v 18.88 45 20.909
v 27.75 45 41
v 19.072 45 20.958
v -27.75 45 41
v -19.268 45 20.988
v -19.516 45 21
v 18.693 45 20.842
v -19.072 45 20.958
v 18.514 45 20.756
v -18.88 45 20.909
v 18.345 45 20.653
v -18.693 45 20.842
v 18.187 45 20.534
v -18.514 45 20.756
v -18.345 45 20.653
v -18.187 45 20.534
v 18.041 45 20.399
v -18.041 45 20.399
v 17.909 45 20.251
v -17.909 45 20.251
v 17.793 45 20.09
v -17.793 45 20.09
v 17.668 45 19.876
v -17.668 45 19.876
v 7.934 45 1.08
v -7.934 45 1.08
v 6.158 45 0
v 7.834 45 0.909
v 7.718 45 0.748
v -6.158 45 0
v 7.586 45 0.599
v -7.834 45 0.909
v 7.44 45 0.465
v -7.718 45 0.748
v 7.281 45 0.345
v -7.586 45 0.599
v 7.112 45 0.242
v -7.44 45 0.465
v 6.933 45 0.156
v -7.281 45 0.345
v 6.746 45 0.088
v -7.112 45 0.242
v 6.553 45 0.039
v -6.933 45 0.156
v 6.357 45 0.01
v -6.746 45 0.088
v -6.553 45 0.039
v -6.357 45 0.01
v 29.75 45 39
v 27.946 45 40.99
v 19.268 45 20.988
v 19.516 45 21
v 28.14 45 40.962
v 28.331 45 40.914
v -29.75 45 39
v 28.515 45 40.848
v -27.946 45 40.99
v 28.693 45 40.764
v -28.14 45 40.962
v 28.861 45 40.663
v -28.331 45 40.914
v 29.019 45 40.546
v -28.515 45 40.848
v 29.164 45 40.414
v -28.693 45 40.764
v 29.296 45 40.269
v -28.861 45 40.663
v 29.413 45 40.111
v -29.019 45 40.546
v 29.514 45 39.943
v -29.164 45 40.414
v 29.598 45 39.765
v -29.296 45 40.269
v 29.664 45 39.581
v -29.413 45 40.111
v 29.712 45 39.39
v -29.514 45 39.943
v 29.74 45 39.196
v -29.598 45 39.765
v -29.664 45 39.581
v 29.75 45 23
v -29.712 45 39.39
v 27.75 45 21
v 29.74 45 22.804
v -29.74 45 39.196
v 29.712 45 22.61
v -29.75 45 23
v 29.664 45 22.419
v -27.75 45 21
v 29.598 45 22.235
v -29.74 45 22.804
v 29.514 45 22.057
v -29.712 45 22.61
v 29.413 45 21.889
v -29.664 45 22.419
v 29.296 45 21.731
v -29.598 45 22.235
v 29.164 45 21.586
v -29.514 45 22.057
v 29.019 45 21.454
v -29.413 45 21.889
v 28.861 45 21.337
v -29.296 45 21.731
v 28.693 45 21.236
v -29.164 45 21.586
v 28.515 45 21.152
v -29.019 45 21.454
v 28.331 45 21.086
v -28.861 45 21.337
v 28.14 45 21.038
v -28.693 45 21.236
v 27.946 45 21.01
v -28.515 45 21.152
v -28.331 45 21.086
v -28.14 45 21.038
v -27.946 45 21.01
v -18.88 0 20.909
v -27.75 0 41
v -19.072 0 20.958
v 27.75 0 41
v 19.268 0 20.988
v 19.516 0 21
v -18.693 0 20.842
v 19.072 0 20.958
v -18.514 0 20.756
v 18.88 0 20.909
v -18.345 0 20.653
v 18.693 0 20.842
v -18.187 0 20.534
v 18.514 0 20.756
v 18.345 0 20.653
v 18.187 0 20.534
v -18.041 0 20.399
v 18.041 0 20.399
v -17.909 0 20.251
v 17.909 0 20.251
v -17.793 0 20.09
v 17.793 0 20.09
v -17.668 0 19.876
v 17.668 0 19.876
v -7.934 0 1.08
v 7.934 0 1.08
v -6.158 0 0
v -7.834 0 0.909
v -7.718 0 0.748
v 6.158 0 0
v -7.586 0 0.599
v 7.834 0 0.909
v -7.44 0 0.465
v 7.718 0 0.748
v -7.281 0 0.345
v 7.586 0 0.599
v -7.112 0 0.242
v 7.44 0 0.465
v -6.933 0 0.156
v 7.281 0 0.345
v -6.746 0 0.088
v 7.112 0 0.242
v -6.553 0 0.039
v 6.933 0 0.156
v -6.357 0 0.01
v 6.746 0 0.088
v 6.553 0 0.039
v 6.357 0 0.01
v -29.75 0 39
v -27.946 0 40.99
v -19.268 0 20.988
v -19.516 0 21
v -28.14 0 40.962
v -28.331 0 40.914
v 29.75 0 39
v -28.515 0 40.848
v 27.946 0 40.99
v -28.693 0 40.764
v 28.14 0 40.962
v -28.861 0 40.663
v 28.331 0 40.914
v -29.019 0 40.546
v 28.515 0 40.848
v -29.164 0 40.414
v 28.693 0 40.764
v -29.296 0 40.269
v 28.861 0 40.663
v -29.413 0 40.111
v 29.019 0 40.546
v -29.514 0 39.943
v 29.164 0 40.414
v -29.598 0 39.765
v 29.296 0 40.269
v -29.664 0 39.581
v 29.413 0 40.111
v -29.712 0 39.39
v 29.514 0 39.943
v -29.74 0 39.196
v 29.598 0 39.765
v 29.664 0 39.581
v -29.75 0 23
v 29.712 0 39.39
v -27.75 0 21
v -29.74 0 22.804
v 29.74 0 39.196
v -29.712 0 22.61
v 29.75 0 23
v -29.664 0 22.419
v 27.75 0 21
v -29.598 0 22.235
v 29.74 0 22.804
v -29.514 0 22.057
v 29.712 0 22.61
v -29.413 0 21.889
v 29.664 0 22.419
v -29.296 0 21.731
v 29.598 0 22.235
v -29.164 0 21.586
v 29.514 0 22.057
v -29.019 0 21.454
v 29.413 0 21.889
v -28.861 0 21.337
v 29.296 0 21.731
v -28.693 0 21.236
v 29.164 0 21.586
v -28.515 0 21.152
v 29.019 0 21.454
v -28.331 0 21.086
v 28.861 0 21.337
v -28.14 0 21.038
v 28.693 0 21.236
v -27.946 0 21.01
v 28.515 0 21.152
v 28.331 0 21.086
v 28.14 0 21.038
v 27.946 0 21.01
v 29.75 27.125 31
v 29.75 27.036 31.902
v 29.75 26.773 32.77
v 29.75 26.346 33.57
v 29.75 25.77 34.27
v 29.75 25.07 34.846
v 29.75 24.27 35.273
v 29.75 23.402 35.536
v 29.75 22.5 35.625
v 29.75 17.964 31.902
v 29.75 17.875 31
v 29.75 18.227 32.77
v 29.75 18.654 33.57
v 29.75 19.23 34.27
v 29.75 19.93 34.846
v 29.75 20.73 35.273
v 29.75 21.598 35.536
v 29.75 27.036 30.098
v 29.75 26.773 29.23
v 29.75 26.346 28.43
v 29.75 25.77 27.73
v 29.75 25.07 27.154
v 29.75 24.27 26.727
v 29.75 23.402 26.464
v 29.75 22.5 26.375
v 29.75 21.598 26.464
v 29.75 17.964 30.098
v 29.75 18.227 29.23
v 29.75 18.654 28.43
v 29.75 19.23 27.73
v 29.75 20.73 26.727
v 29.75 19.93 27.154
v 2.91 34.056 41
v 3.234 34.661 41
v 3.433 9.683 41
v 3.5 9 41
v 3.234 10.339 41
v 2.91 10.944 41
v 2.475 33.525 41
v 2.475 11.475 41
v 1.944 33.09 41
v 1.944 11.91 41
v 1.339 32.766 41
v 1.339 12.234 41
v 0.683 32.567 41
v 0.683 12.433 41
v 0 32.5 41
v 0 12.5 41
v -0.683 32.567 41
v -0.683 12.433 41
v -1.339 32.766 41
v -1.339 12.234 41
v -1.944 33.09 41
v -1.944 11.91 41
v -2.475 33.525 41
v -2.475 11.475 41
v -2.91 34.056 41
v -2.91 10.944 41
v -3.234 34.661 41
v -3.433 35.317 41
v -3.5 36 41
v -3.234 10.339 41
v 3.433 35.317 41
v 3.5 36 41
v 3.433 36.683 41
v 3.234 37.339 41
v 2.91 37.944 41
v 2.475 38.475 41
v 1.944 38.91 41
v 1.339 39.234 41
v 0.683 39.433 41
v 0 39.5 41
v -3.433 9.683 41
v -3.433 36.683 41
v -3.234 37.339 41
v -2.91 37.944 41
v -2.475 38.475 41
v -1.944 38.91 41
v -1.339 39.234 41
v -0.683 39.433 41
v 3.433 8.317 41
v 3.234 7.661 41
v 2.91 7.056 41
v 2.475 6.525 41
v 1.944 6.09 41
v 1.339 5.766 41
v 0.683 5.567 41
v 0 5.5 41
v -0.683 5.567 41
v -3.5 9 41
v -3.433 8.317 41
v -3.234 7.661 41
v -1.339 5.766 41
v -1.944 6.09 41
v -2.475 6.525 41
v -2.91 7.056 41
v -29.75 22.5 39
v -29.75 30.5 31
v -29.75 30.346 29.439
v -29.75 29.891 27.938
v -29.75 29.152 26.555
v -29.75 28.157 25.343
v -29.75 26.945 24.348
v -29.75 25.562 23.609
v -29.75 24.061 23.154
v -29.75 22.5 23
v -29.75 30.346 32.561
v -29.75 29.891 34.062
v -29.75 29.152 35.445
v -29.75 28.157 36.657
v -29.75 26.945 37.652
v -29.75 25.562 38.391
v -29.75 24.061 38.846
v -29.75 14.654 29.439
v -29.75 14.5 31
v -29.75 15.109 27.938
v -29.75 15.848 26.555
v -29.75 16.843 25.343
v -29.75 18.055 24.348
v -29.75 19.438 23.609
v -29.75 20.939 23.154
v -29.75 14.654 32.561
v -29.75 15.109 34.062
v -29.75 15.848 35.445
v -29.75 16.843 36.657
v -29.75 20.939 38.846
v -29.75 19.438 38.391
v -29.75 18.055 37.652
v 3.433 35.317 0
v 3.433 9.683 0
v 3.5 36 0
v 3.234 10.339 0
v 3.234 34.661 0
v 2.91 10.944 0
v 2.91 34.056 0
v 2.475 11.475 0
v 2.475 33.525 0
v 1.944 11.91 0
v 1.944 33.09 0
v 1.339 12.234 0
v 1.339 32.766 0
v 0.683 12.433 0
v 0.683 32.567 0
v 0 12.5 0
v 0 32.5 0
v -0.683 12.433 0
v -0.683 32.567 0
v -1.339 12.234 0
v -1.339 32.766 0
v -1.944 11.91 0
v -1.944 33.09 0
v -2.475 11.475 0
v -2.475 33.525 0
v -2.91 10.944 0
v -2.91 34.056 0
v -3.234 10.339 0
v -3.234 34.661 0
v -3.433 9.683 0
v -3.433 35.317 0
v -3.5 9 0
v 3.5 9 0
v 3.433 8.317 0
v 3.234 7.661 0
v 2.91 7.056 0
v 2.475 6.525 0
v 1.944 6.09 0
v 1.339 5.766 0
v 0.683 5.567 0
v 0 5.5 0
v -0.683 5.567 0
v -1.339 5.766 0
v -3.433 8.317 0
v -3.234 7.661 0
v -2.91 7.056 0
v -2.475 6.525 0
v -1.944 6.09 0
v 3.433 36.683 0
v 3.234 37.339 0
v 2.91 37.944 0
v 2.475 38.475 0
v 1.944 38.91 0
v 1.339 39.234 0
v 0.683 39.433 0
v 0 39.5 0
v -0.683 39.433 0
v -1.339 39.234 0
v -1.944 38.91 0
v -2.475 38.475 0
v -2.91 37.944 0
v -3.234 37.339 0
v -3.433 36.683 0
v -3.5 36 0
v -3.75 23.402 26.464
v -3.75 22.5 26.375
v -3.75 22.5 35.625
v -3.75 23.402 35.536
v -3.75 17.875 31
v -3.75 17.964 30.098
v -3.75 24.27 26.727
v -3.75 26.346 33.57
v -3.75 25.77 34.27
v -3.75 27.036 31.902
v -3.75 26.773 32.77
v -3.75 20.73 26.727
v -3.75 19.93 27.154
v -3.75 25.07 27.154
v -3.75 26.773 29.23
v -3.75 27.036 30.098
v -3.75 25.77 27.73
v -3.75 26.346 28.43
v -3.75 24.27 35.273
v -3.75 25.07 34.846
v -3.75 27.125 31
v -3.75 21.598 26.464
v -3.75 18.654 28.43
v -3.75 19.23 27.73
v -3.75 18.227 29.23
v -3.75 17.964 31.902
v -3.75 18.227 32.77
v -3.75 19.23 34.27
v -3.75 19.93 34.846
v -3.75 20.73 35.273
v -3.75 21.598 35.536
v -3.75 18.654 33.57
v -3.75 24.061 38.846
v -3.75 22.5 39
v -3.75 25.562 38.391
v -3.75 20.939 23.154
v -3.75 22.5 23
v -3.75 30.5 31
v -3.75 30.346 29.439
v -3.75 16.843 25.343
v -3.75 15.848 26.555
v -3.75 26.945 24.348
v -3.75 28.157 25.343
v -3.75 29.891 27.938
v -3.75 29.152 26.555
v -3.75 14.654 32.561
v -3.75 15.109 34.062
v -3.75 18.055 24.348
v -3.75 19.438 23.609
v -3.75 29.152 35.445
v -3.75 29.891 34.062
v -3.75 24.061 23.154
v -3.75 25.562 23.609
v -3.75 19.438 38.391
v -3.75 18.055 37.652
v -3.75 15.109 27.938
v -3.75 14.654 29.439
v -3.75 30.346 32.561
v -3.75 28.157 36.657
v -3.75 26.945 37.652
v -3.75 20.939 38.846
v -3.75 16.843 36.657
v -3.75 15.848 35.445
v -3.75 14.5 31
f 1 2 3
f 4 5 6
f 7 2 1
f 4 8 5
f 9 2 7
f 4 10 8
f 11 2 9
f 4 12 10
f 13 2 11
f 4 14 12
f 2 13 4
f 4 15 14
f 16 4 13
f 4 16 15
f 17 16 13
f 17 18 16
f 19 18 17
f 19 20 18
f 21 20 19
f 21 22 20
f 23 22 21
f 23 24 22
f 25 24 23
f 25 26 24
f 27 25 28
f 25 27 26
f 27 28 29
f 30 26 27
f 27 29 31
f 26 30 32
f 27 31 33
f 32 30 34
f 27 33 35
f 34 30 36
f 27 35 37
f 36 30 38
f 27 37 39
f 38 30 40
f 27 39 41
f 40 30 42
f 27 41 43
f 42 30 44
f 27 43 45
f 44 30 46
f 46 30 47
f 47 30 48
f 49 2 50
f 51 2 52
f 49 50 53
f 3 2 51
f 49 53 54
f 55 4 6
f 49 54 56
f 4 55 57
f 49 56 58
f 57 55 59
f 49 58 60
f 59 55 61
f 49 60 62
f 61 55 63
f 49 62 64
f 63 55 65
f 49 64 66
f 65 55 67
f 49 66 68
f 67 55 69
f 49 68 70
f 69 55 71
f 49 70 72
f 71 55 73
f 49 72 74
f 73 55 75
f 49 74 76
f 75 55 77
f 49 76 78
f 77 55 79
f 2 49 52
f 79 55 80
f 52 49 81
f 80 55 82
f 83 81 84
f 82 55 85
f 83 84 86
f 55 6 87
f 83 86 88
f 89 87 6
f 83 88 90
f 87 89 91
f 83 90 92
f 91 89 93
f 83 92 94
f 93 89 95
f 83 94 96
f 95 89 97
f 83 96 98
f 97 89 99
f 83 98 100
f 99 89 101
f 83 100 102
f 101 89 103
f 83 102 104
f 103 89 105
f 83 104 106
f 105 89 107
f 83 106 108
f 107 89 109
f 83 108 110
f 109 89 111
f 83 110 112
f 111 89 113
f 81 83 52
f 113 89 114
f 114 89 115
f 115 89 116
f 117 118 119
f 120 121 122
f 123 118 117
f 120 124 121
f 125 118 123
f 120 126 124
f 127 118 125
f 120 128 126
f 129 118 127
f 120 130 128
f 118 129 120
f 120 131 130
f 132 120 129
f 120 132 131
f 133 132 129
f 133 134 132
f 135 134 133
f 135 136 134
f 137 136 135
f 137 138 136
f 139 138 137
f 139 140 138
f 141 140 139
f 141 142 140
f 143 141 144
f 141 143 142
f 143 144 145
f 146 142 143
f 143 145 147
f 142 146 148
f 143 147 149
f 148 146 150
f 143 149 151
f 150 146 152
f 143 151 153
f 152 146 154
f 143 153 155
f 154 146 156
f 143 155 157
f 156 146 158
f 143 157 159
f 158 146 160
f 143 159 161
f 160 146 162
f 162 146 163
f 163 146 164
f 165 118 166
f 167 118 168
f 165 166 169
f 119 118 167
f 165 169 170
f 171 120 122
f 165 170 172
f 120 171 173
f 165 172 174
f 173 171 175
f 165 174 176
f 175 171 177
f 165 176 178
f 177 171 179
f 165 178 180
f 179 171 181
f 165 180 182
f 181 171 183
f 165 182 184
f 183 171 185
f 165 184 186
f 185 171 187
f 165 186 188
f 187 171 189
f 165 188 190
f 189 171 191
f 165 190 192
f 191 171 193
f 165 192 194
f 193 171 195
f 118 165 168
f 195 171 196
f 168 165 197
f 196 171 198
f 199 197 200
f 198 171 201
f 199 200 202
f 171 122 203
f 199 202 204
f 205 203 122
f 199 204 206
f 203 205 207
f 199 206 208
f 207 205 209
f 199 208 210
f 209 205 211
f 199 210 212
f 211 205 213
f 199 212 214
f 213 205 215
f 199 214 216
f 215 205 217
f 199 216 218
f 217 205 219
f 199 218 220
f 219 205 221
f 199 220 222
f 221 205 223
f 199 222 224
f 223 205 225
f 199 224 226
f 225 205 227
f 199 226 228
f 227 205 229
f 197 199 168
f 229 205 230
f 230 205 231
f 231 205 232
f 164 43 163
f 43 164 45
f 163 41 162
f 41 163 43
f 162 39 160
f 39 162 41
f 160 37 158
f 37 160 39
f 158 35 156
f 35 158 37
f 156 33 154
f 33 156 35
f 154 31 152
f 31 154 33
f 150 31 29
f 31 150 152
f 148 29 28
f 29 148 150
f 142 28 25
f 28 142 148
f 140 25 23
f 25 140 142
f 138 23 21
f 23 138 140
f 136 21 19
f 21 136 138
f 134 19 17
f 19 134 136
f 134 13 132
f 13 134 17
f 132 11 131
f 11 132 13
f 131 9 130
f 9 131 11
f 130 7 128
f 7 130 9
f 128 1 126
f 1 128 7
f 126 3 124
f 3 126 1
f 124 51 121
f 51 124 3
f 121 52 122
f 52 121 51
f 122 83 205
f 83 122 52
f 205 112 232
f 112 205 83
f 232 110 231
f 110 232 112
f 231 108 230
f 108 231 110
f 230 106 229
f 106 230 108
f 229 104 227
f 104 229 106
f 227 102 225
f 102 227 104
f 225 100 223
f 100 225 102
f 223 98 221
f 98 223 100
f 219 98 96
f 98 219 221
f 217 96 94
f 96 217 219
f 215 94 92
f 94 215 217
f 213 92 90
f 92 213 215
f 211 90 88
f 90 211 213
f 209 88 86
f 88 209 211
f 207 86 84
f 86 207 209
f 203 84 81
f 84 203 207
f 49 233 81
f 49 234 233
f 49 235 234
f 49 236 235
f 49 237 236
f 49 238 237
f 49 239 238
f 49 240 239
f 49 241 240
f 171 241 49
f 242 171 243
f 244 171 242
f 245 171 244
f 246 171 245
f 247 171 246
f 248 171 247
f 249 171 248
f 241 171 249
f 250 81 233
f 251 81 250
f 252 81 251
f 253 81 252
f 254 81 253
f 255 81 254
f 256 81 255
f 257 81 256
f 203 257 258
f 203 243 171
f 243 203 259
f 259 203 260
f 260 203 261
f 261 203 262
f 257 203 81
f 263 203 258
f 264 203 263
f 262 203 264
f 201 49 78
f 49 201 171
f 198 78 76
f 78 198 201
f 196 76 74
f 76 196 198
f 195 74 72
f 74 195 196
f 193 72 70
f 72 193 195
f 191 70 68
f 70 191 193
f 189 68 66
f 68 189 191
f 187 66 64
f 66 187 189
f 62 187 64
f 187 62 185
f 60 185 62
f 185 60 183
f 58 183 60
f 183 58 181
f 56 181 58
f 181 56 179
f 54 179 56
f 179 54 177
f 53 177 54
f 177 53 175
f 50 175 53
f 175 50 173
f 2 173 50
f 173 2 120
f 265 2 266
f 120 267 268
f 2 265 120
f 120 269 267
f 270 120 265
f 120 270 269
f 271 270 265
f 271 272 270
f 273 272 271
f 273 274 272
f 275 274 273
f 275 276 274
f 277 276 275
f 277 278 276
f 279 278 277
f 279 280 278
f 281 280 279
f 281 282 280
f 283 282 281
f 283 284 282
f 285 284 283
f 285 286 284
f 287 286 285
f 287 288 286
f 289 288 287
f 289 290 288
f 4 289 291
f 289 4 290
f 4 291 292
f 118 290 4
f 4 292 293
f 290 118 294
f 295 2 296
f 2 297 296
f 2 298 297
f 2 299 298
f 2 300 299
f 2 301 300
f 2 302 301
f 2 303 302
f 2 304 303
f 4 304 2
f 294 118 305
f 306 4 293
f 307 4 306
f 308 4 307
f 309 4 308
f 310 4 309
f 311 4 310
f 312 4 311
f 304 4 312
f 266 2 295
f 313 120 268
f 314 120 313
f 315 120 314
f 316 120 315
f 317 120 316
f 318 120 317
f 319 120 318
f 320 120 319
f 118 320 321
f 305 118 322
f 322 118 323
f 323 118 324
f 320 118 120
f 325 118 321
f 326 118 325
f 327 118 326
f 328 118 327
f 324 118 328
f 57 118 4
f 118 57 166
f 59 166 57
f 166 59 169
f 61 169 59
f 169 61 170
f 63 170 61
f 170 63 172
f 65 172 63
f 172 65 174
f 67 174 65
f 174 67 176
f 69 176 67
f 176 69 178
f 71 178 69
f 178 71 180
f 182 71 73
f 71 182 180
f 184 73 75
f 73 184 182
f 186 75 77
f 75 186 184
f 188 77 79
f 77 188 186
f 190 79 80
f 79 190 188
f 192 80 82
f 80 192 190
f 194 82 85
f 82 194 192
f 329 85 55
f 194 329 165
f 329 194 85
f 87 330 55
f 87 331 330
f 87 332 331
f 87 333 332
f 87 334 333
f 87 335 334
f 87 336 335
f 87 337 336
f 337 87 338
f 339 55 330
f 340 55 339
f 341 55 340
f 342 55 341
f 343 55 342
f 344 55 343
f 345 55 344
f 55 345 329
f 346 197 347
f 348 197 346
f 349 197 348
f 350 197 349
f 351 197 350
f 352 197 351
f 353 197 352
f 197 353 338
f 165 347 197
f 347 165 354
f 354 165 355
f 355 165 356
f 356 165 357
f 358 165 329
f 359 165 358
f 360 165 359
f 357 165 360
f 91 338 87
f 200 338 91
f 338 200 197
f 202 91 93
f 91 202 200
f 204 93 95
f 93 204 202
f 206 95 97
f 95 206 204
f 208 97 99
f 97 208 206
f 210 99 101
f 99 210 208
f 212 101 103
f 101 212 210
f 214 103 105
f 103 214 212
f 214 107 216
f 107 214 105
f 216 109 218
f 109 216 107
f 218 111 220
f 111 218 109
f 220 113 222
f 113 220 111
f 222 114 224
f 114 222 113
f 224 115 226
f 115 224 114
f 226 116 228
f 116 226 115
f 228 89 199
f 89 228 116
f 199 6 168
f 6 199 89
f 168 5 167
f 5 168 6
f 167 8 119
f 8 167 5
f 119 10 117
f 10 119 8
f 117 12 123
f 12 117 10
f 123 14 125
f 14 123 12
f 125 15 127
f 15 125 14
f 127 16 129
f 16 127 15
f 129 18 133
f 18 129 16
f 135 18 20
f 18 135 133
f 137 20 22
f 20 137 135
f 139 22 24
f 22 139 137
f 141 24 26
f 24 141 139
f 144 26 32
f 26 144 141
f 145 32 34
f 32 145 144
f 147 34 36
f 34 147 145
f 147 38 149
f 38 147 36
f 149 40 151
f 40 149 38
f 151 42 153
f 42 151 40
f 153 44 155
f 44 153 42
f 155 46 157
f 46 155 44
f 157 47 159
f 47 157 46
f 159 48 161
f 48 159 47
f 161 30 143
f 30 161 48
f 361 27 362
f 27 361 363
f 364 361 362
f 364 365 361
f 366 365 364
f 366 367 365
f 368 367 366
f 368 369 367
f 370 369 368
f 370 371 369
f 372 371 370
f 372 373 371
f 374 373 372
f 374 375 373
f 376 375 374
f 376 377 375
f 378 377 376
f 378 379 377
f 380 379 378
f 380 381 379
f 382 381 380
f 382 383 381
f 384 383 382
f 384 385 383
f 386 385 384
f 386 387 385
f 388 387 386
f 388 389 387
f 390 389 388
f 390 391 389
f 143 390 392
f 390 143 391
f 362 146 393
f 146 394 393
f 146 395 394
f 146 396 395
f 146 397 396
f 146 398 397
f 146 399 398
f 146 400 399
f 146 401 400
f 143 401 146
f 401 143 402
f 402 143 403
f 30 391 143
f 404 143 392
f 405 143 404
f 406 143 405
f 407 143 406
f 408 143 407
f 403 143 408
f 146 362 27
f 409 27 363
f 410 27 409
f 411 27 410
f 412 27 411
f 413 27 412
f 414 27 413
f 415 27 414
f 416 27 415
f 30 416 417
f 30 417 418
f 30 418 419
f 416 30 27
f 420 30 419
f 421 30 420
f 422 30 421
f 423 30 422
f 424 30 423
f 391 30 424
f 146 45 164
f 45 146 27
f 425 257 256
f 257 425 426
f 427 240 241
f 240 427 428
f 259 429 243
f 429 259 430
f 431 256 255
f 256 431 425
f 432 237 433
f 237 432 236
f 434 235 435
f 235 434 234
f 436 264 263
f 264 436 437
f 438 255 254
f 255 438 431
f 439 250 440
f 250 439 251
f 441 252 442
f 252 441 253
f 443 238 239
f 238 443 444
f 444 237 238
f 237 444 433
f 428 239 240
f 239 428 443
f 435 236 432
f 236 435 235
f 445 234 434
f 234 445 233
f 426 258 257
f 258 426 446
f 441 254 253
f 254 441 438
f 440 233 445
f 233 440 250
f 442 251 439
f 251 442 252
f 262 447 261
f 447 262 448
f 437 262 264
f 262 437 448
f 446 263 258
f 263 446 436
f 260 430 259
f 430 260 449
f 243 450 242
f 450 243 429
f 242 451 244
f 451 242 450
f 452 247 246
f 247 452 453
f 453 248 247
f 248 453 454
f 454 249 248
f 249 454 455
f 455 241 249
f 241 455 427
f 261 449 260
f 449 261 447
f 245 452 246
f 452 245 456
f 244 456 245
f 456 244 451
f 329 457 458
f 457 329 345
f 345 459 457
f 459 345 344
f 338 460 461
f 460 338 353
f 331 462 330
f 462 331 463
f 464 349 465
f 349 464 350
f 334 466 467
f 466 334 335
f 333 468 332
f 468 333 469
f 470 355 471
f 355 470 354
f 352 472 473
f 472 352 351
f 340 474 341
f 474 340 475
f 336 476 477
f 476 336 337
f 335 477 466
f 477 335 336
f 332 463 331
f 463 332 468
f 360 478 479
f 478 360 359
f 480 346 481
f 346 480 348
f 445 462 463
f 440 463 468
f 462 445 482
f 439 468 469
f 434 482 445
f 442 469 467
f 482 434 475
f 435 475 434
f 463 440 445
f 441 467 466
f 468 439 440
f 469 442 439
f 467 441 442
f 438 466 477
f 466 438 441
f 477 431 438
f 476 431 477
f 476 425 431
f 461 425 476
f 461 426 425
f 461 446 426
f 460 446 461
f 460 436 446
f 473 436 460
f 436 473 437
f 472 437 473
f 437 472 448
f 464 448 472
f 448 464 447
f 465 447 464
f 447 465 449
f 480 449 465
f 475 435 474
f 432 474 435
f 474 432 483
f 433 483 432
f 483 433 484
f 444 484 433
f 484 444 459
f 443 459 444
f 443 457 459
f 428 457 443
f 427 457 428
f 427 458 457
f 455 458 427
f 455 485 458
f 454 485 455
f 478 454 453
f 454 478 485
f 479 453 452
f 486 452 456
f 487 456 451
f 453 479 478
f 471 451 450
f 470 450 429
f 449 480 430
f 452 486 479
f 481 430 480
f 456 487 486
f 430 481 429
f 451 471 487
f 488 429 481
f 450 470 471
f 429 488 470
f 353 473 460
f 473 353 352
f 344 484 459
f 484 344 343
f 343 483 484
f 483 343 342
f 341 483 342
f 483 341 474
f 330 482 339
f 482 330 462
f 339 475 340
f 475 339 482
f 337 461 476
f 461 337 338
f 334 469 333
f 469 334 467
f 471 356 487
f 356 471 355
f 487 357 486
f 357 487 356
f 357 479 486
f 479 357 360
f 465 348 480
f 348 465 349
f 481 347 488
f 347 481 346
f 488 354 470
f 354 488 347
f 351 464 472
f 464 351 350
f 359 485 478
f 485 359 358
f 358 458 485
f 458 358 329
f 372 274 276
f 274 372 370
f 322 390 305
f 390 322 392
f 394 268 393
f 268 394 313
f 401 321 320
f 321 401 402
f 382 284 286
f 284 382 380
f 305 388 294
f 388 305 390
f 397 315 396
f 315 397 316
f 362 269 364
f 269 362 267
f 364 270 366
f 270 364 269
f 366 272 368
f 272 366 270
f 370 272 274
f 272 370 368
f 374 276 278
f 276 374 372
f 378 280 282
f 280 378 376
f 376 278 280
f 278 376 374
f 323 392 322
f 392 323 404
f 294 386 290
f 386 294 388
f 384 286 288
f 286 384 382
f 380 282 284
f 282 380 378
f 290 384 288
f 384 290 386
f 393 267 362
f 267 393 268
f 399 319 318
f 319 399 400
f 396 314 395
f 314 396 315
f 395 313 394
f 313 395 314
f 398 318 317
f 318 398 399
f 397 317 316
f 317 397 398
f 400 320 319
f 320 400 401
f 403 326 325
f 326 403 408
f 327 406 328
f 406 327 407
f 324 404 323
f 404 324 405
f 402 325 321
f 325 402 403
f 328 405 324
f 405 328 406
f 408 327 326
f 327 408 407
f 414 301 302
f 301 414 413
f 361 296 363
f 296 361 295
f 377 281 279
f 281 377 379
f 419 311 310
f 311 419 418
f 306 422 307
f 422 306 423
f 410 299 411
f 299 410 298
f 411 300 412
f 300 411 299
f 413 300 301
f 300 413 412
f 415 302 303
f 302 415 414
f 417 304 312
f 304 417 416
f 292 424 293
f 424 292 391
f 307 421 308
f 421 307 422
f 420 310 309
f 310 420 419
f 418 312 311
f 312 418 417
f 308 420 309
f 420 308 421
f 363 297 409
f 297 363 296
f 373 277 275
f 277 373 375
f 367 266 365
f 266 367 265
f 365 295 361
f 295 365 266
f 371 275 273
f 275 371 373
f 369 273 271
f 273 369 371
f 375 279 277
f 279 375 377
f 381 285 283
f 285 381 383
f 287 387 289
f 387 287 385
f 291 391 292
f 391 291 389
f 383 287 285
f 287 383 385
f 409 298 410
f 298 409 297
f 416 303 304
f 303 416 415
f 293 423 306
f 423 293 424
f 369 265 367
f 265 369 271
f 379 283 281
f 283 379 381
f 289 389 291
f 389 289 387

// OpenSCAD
union() {
	difference() {
		translate(v = [-29.7500000000, 45, 0]) {
			rotate(a = 90, v = [1, 0, 0]) {
				linear_extrude(height = 45) {
					polygon(points = [[0.0000000000, 39.0000000000], [0.0096305467, 39.1960342807], [0.0384294392, 39.3901806440], [0.0861193285, 39.5805693545], [0.1522409350, 39.7653668647], [0.2361574713, 39.9427934737], [0.3370607754, 40.1111404660], [0.4539790933, 40.2687865683], [0.5857864376, 40.4142135624], [0.7312134317, 40.5460209067], [0.8888595340, 40.6629392246], [1.0572065263, 40.7638425287], [1.2346331353, 40.8477590650], [1.4194306455, 40.9138806715], [1.6098193560, 40.9615705608], [1.8039657193, 40.9903694533], [2.0000000000, 41.0000000000], [57.5000000000, 41.0000000000], [57.6960342807, 40.9903694533], [57.8901806440, 40.9615705608], [58.0805693545, 40.9138806715], [58.2653668647, 40.8477590650], [58.4427934737, 40.7638425287], [58.6111404660, 40.6629392246], [58.7687865683, 40.5460209067], [58.9142135624, 40.4142135624], [59.0460209067, 40.2687865683], [59.1629392246, 40.1111404660], [59.2638425287, 39.9427934737], [59.3477590650, 39.7653668647], [59.4138806715, 39.5805693545], [59.4615705608, 39.3901806440], [59.4903694533, 39.1960342807], [59.5000000000, 39.0000000000], [59.5000000000, 23.0000000000], [59.4903694533, 22.8039657193], [59.4615705608, 22.6098193560], [59.4138806715, 22.4194306455], [59.3477590650, 22.2346331353], [59.2638425287, 22.0572065263], [59.1629392246, 21.8888595340], [59.0460209067, 21.7312134317], [58.9142135624, 21.5857864376], [58.7687865683, 21.4539790933], [58.6111404660, 21.3370607754], [58.4427934737, 21.2361574713], [58.2653668647, 21.1522409350], [58.0805693545, 21.0861193285], [57.8901806440, 21.0384294392], [57.6960342807, 21.0096305467], [57.5000000000, 21.0000000000], [49.2662426067, 21.0000000000], [49.0184030885, 20.9876771335], [48.8222086491, 20.9582177209], [48.6299041660, 20.9094416941], [48.4433866045, 20.8418301988], [48.2644958459, 20.7560501806], [48.0949965375, 20.6529478069], [47.9365606857, 20.5335401191], [47.7907511630, 20.3990050006], [47.6590062905, 20.2506695578], [47.5426256505, 20.0899970286], [47.4177129587, 19.8755836444], [37.6844366721, 1.0802915047], [37.5844447646, 0.9086547962], [37.4679201779, 0.7477835373], [37.3360123552, 0.5992646241], [37.1900224863, 0.4645631043], [37.0313906714, 0.3450077257], [36.8616817158, 0.2417778287], [36.6825696941, 0.1558917125], [36.4958214363, 0.0881965911], [36.3032790991, 0.0393602352], [36.1068419944, 0.0098643853], [35.9084478535, 0.0000000000], [23.5915521465, 0.0000000000], [23.3931580056, 0.0098643853], [23.1967209009, 0.0393602352], [23.0041785637, 0.0881965911], [22.8174303059, 0.1558917125], [22.6383182842, 0.2417778287], [22.4686093286, 0.3450077257], [22.3099775137, 0.4645631043], [22.1639876448, 0.5992646241], [22.0320798221, 0.7477835373], [21.9155552354, 0.9086547962], [21.8155633279, 1.0802915047], [12.0822870413, 19.8755836444], [11.9573743495, 20.0899970286], [11.8409937095, 20.2506695578], [11.7092488370, 20.3990050006], [11.5634393143, 20.5335401191], [11.4050034625, 20.6529478069], [11.2355041541, 20.7560501806], [11.0566133955, 20.8418301988], [10.8700958340, 20.9094416941], [10.6777913509, 20.9582177209], [10.4815969115, 20.9876771335], [10.2337573933, 21.0000000000], [2.0000000000, 21.0000000000], [1.8039657193, 21.0096305467], [1.6098193560, 21.0384294392], [1.4194306455, 21.0861193285], [1.2346331353, 21.1522409350], [1.0572065263, 21.2361574713], [0.8888595340, 21.3370607754], [0.7312134317, 21.4539790933], [0.5857864376, 21.5857864376], [0.4539790933, 21.7312134317], [0.3370607754, 21.8888595340], [0.2361574713, 22.0572065263], [0.1522409350, 22.2346331353], [0.0861193285, 22.4194306455], [0.0384294392, 22.6098193560], [0.0096305467, 22.8039657193], [0.0000000000, 23.0000000000], [0.0000000000, 39.0000000000]]);
				}
			}
		}
		translate(v = [-4.7500000000, 22.5000000000, 31.0000000000]) {
			rotate(a = 90, v = [0, 1, 0]) {
				cylinder($fn = 32, h = 61.5000000000, r = 4.6250000000);
			}
		}
		translate(v = [-3.7500000000, 22.5000000000, 31.0000000000]) {
			rotate(a = -90, v = [0, 1, 0]) {
				cylinder($fn = 32, h = 61.5000000000, r = 8);
			}
		}
		translate(v = [0, 9.0000000000, -1]) {
			cylinder($fn = 32, h = 43, r = 3.5000000000);
		}
		translate(v = [0, 36.0000000000, -1]) {
			cylinder($fn = 32, h = 43, r = 3.5000000000);
		}
	}
}
